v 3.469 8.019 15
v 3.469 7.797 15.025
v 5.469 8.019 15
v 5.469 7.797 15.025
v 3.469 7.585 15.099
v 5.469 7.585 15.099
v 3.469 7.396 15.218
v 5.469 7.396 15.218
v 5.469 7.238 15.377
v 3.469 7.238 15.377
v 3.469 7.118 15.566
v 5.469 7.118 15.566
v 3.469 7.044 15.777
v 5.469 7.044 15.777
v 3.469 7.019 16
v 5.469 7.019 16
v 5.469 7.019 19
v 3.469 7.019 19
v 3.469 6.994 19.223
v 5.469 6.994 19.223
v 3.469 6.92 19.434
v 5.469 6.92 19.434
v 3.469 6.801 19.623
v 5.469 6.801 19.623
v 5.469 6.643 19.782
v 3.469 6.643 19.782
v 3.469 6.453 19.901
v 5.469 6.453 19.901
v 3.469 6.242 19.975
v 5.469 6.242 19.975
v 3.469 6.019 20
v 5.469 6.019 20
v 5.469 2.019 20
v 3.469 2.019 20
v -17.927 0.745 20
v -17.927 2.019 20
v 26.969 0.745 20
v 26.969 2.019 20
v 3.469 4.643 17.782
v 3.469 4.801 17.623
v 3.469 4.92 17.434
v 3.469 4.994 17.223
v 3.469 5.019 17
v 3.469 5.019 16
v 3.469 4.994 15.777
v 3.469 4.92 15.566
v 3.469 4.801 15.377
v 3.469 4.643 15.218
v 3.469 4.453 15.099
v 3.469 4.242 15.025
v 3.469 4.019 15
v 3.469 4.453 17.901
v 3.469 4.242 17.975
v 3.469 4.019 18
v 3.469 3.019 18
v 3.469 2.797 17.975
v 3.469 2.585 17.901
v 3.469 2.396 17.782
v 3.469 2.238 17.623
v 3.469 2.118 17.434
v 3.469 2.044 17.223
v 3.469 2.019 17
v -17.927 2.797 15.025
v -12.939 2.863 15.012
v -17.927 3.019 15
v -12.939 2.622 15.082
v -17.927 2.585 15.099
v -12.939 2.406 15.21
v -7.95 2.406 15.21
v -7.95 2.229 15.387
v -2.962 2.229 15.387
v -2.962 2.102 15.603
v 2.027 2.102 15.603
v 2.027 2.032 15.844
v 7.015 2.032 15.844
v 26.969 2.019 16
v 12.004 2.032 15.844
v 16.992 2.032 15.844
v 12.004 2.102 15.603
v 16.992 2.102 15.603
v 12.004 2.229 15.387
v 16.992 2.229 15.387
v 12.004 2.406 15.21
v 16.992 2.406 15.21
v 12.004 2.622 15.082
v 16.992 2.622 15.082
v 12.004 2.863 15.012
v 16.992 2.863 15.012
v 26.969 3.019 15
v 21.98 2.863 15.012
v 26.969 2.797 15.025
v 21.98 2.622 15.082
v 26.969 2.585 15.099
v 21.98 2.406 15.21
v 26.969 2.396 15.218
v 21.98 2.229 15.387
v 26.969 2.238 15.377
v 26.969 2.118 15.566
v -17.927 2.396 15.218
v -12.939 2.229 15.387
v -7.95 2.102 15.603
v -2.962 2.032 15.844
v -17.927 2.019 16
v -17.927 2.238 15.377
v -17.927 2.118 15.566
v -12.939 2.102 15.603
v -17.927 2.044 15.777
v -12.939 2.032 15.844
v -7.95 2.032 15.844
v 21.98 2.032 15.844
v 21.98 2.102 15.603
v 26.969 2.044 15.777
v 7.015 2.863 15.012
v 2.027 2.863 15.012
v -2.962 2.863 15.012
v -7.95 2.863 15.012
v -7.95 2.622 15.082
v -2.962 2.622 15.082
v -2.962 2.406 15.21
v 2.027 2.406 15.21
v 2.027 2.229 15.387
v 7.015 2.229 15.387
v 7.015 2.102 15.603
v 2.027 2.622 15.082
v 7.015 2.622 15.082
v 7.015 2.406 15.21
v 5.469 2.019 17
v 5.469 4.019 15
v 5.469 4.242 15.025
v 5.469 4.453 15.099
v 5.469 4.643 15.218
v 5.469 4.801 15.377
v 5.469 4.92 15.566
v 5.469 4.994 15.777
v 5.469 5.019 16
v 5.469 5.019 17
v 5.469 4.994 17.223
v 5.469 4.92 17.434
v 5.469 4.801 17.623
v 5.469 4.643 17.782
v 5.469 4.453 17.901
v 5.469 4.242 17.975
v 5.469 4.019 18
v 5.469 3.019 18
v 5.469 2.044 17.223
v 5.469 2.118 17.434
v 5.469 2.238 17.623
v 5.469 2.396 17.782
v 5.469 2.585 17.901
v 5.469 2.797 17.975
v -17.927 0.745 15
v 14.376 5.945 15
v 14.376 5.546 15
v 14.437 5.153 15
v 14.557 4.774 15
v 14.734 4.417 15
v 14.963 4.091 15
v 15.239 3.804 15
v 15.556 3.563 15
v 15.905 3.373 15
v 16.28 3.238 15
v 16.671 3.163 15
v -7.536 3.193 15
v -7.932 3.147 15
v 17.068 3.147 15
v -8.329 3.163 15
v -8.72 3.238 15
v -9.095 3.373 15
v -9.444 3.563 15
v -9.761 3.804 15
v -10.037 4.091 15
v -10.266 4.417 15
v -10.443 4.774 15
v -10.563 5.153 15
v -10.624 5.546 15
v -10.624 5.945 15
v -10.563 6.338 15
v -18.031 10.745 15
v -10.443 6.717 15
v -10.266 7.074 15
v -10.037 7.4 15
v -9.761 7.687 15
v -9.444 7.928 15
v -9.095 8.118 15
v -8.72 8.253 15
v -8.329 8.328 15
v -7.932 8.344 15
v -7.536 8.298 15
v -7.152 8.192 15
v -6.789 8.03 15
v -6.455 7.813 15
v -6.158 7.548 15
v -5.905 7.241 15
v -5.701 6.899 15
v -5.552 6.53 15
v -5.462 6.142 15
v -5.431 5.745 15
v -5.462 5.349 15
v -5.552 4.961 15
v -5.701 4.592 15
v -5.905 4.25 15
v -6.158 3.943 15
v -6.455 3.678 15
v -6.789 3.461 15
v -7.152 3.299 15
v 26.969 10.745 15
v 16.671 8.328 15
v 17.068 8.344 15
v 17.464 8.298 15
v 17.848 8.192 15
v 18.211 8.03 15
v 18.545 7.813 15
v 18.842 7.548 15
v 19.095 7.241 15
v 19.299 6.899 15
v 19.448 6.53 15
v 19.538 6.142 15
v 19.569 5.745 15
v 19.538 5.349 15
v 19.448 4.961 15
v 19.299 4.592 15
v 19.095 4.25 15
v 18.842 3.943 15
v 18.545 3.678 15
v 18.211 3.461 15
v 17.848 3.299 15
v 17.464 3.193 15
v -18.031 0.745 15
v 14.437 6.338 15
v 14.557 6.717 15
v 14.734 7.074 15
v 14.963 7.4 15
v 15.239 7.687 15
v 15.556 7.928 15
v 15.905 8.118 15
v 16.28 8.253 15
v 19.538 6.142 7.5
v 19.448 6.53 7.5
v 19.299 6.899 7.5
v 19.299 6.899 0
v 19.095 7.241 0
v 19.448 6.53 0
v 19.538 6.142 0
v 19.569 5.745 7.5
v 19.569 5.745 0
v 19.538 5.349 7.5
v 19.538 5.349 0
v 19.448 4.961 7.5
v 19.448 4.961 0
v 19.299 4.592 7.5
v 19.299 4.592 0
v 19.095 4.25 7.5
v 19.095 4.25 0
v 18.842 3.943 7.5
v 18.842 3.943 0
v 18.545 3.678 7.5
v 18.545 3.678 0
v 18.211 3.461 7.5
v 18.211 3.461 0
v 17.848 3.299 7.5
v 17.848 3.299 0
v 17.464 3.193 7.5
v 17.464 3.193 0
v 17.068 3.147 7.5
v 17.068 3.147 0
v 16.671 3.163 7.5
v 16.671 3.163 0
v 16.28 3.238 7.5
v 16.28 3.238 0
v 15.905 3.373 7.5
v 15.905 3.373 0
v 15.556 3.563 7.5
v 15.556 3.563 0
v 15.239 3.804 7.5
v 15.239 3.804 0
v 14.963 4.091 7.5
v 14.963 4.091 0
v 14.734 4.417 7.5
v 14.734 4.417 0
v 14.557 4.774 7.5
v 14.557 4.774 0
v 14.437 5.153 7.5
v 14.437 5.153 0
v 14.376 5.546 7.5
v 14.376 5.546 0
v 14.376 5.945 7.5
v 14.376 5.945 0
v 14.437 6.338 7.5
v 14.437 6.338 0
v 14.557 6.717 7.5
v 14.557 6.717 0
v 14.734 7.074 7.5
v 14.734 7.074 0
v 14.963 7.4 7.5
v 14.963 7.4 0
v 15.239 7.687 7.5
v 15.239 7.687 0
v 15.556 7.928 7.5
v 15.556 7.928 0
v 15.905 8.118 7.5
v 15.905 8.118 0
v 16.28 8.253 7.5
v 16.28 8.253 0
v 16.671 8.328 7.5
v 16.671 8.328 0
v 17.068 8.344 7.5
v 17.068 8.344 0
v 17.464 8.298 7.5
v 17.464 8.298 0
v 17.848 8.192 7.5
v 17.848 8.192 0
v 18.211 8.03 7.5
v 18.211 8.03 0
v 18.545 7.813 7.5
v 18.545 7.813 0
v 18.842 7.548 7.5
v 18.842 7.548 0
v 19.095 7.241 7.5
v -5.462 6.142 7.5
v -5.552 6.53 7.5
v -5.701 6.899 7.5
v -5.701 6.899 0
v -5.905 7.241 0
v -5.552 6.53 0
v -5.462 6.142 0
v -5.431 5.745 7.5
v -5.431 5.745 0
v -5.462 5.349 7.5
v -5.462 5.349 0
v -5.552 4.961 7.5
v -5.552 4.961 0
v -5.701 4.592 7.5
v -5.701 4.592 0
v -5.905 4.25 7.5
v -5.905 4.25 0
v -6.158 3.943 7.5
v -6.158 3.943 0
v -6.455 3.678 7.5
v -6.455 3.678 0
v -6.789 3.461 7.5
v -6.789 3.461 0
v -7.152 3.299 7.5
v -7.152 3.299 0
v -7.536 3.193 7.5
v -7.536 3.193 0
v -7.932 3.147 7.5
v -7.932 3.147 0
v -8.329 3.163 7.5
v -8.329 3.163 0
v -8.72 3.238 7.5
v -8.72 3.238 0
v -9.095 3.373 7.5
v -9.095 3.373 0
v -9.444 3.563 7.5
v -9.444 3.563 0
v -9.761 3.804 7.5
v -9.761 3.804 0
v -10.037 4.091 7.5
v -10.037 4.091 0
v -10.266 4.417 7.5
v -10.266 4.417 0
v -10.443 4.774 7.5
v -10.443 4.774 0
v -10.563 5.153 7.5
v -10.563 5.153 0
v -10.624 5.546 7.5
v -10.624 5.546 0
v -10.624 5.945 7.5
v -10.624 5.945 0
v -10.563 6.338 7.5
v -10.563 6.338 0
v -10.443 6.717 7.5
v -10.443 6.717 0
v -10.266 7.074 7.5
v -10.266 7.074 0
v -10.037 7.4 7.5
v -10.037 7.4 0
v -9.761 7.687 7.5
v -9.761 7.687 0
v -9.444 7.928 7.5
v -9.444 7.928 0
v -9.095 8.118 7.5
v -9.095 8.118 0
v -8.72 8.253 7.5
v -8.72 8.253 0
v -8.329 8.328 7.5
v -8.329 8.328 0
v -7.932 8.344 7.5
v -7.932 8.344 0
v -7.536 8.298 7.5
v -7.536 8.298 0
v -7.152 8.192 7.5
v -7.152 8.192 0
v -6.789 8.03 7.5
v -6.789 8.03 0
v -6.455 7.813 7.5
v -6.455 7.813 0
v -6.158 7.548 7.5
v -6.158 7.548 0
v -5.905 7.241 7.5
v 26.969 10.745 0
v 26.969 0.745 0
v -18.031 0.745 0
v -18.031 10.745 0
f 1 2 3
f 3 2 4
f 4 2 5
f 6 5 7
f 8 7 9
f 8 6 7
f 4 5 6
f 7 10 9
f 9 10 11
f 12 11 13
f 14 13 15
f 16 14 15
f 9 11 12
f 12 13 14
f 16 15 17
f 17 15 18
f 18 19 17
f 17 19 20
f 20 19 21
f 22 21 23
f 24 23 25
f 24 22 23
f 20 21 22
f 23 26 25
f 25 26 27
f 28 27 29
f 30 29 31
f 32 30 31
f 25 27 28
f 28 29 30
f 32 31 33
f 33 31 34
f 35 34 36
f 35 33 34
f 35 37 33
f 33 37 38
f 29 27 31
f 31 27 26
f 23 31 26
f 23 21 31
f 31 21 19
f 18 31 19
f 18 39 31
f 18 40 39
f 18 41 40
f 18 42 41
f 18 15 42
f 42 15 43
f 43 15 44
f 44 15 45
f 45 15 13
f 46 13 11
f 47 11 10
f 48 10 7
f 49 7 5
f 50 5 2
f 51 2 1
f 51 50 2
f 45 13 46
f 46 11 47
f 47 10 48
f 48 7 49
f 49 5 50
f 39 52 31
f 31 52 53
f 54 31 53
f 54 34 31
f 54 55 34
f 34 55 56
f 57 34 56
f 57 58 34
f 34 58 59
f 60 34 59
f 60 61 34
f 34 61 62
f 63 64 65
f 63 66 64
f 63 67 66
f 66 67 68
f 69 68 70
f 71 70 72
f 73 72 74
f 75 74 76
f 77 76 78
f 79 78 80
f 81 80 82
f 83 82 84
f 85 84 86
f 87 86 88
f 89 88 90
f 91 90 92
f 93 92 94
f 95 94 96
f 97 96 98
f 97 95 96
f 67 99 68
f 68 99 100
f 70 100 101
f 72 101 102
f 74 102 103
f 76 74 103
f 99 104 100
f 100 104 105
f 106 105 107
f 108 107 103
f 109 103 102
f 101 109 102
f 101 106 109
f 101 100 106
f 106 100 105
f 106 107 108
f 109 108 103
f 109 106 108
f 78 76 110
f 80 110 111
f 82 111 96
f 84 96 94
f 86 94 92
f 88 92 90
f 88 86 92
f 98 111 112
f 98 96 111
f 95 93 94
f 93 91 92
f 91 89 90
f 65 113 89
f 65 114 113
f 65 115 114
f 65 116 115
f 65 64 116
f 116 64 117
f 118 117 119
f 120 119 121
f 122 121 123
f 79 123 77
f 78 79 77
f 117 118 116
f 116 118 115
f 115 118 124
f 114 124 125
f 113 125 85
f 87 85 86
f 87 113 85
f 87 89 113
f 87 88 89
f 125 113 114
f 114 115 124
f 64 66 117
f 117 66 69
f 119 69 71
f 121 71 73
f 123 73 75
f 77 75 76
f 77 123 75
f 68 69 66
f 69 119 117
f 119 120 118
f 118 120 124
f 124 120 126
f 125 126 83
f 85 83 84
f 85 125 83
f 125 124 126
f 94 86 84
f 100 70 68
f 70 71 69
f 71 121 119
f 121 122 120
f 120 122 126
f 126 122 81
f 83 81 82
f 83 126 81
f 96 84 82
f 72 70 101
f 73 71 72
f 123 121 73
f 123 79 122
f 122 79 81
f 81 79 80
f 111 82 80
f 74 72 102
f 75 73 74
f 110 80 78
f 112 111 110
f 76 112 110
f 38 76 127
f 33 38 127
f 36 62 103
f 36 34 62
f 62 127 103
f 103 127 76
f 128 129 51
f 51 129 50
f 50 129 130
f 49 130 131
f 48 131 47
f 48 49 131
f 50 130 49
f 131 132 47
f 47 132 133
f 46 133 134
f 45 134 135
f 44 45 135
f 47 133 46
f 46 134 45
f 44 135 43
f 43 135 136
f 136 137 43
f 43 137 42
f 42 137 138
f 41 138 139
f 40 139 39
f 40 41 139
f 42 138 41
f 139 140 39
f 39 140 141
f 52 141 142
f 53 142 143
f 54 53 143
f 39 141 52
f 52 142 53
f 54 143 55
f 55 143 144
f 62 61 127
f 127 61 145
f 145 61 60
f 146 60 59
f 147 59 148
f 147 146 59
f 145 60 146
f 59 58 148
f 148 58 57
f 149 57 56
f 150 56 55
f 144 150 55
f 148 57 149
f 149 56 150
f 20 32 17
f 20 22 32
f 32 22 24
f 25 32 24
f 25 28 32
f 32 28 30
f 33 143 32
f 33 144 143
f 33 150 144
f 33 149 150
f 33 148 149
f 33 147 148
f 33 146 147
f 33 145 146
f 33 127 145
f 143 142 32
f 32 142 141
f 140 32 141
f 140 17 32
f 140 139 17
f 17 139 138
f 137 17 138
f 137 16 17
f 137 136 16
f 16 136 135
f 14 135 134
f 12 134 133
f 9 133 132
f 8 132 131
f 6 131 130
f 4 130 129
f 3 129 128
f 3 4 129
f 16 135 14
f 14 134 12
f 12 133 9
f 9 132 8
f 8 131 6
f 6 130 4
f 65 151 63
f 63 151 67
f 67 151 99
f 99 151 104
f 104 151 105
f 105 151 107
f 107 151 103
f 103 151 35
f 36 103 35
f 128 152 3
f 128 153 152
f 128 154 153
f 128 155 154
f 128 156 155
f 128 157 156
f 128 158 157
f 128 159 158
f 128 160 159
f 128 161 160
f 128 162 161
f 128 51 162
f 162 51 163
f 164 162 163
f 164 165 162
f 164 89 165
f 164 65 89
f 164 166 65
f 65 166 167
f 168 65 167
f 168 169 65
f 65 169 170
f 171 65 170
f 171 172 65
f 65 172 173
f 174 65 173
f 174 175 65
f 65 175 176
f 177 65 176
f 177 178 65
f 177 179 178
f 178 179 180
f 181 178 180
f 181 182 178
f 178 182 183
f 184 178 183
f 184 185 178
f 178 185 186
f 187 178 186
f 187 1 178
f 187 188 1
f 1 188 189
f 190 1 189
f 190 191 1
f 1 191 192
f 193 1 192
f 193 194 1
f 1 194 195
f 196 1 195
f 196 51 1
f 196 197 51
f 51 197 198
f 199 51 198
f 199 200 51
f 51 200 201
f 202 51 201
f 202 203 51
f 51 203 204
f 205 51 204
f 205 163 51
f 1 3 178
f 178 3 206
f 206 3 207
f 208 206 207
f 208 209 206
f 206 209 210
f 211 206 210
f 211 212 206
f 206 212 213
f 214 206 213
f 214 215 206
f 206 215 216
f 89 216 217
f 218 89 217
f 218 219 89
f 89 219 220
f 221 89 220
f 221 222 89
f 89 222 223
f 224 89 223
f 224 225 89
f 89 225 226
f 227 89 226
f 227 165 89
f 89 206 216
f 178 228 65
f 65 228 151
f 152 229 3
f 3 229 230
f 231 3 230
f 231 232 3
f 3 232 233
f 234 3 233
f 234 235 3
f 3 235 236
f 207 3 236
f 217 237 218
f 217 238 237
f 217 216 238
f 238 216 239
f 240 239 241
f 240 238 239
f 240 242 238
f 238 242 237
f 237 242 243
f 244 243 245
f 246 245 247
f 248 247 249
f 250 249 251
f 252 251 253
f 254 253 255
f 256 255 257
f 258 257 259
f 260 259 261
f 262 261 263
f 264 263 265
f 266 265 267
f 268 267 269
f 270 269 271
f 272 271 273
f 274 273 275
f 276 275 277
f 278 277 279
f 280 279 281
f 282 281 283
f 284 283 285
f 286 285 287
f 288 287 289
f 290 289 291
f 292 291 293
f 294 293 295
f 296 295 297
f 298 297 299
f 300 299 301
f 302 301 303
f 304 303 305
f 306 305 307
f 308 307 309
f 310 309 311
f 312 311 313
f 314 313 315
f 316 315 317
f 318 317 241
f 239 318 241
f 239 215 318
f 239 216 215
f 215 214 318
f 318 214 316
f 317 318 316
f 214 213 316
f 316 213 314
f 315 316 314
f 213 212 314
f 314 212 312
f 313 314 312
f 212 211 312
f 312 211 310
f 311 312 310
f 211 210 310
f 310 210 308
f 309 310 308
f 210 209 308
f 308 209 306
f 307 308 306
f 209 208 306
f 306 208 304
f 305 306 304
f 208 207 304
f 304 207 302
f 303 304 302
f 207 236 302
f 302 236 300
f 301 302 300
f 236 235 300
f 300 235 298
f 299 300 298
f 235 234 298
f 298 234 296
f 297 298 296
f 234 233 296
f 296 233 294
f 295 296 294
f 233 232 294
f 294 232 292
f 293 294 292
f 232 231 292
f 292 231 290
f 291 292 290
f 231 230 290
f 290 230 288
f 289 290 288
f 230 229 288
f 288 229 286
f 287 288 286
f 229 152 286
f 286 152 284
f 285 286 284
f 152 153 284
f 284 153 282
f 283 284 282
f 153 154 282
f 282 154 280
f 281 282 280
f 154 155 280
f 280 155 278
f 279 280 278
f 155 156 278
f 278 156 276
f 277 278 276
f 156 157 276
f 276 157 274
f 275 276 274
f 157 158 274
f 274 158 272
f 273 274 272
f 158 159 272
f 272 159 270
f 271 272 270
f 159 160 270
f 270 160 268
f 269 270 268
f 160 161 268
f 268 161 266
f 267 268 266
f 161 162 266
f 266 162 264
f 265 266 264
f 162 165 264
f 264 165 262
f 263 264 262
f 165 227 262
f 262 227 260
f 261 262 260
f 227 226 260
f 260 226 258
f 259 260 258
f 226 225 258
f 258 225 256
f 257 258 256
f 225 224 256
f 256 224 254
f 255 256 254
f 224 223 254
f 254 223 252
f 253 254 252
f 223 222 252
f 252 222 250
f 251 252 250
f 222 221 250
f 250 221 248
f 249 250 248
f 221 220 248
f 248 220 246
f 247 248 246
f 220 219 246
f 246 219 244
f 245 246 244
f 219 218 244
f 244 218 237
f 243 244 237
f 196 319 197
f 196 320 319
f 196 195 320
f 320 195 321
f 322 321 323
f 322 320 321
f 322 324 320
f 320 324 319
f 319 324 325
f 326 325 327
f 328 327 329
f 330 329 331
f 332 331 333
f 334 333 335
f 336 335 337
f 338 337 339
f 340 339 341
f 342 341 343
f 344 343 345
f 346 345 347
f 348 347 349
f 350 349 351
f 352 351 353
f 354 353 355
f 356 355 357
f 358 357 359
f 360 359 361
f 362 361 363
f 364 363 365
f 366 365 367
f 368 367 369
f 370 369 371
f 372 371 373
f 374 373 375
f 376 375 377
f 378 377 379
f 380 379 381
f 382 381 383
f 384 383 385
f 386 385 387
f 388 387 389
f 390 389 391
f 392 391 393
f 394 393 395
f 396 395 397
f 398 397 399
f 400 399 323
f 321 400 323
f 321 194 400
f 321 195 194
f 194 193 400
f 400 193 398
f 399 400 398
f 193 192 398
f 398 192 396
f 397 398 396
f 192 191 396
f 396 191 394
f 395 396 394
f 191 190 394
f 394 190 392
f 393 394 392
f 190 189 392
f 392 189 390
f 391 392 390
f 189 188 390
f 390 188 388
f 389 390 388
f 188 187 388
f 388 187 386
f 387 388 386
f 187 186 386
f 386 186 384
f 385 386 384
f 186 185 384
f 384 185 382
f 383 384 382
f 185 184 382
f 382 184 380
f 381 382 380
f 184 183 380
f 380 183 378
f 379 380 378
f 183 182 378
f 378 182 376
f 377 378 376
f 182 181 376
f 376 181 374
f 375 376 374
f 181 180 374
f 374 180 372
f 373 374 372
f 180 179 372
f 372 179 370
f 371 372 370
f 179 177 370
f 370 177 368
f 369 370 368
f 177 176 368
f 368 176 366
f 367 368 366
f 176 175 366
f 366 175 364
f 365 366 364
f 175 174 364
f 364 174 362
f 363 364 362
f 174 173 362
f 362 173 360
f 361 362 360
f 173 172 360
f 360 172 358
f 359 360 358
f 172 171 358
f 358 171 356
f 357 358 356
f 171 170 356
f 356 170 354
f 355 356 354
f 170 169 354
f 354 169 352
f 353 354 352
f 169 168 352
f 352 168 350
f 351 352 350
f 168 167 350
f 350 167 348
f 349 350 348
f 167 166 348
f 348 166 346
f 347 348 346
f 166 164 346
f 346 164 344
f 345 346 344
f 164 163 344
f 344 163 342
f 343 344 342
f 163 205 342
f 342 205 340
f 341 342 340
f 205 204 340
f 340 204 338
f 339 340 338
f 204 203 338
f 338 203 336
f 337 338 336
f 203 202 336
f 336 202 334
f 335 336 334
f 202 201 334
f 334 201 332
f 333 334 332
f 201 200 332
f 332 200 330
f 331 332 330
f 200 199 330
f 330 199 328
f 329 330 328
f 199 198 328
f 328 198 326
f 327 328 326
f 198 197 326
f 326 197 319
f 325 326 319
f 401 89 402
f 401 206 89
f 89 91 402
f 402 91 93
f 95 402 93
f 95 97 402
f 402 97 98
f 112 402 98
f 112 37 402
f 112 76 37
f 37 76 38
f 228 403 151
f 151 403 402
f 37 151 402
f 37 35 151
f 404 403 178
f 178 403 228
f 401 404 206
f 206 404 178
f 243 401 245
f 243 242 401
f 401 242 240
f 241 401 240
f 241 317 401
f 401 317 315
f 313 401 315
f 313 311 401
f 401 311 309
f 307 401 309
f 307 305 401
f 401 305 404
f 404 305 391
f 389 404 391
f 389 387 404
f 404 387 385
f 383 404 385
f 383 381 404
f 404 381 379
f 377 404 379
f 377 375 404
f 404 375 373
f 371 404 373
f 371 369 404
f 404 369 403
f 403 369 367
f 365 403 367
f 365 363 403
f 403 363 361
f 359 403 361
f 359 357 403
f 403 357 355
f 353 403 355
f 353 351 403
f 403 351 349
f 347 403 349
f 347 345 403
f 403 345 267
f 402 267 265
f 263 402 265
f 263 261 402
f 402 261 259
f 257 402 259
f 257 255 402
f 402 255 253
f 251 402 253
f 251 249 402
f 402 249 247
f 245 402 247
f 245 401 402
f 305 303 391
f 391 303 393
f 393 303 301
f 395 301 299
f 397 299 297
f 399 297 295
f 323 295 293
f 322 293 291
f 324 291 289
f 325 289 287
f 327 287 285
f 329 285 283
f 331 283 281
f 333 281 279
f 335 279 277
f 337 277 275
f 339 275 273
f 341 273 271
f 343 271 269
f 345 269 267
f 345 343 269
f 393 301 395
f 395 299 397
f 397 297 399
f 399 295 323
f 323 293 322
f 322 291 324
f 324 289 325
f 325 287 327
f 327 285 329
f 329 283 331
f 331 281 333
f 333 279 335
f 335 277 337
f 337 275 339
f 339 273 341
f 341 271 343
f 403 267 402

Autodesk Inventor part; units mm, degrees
ref_plane "YZ Plane" through (0, 0, 0) normal (1, 0, 0) x (0, 1, 0)
ref_plane "XZ Plane" through (0, 0, 0) normal (0, 1, 0) x (-1, 0, 0)
ref_plane "XY Plane" through (0, 0, 0) normal (0, 0, 1) x (1, 0, 0)
sketch "Sketch1" plane through (0, 0, 0) normal (0, 0, 1) x (1, 0, 0)
  line L0 (-18.0312, 10.7455) -> (26.9688, 10.7455)
  line L1 (26.9688, 10.7455) -> (26.9688, 0.7455)
  line L2 (26.9688, 0.7455) -> (-18.0312, 0.7455)
  line L3 (-18.0312, 0.7455) -> (-18.0312, 10.7455)
  circle A0 centre (-8.0312, 5.7455) radius 2.6
  circle A1 centre (16.9688, 5.7455) radius 2.6
  point P0 (0, 0)
  dimension "d0" = 5.2
  dimension "d1" = 5.2
  dimension "d2" = 10
  dimension "d3" = 5
  dimension "d4" = 5
  dimension "d5" = 10
  dimension "d6" = 45
  dimension "d7" = 10
  dimension "d8" = 25
extrude "Extrusion1" add sketch "Sketch1" along normal blind 15
sketch "Sketch2" plane through (0, 0, 15) normal (0, 0, 1) x (1, 0, 0)
  line L0 (-17.927, 2.0194) -> (26.9688, 2.0194)
  line L1 (26.9688, 2.0194) -> (26.9688, 0.7455)
  line L2 (26.9688, 0.7455) -> (-17.927, 0.7455)
  line L3 (-17.927, 0.7455) -> (-17.927, 2.0194)
  point P0 (0, 0)
extrude "Extrusion2" add sketch "Sketch2" along normal blind 5
sketch "Sketch3" plane through (0, 0, 15) normal (0, 0, 1) x (1, 0, 0)
  point P0 (0, 0)
sketch "Sketch4" plane through (0, 0, 15) normal (0, 0, 1) x (1, 0, 0)
  line L0 (5.4688, 5.0194) -> (3.4688, 5.0194)
  line L1 (3.4688, 5.0194) -> (3.4688, 7.0194)
  line L2 (3.4688, 7.0194) -> (5.4688, 7.0194)
  line L3 (5.4688, 7.0194) -> (5.4688, 5.0194)
  line L4 (26.9688, 2.0194) -> (-17.927, 2.0194) projected
  line L5 (26.9688, 2.0194) -> (26.9688, 10.7455) projected
  line L6 (-18.0312, 10.7455) -> (-18.0312, 0.7455) projected
  point P0 (0, 0)
  dimension "d13" = 2
  dimension "d14" = 3
  dimension "d15" = 21.5
  dimension "d16" = 2
  dimension "d17" = 21.5
extrude "Extrusion3" add sketch "Sketch4" along normal blind 5
sketch "Sketch5" plane through (3.4688, 5.0194, 15) normal (0, -1, 0) x (1, 0, 0)
  line L0 (2, 0) -> (2, 5) projected
  line L1 (0, 5) -> (2, 5)
  line L2 (2, 5) -> (2, 3)
  line L3 (2, 3) -> (0, 3)
  line L4 (0, 3) -> (0, 5)
  point P0 (-3.4688, -15)
  dimension "d20" = 2
extrude "Extrusion4" add sketch "Sketch5" along normal blind 4
fillet "Fillet1" radius 1 4 edges at (4.4688, 2.0194, 18) (4.4688, 5.0194, 18) (4.4688, 5.0194, 15) (4.5209, 2.0194, 15)
fillet "Fillet2" radius 1 2 edges at (4.4688, 7.0194, 20) (4.4688, 7.0194, 15)
properties part number "Slider"
